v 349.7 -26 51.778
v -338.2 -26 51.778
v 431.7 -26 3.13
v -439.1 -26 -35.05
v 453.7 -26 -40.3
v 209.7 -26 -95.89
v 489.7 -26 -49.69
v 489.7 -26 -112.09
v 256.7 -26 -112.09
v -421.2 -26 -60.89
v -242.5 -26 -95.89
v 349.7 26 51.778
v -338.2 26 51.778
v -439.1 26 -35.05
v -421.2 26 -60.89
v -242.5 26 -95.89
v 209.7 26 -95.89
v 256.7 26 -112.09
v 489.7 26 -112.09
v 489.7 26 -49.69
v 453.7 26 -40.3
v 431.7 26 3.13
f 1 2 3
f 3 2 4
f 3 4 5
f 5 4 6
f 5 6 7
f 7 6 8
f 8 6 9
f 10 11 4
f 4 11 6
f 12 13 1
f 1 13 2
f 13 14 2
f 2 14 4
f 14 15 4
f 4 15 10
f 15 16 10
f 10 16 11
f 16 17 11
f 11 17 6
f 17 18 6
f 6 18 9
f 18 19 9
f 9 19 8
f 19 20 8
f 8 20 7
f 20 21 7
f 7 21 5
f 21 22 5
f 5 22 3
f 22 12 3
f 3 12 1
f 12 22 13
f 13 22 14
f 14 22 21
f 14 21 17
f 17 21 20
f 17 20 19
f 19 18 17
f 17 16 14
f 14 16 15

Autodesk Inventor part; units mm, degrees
ref_plane "YZ Plane" through (0, 0, 0) normal (1, 0, 0) x (0, 1, 0)
ref_plane "XY Plane" through (0, 0, 0) normal (0, 0, 1) x (1, 0, 0)
sketch "Sketch1" plane through (0, 0, 0) normal (0, 1, 0) x (-1, 0, 0)
  line L0 (0, -144.8636) -> (0, 84.5516) construction
  line L1 (624.86, 0) -> (-675.46, 0) construction
  line L2 (338.2, 51.778) -> (439.1, -35.05)
  line L3 (439.1, -35.05) -> (421.2, -60.89)
  line L4 (421.2, -60.89) -> (242.5, -95.89)
  line L5 (242.5, -95.89) -> (-209.7, -95.89)
  line L6 (-209.7, -95.89) -> (-256.7, -112.09)
  line L7 (-256.7, -112.09) -> (-489.7, -112.09)
  line L8 (-489.7, -112.09) -> (-489.7, -49.69)
  line L9 (-489.7, -49.69) -> (-453.7, -40.3)
  line L10 (-453.7, -40.3) -> (-431.7, 3.13)
  line L11 (-431.7, 3.13) -> (-349.7, 51.778)
  line L12 (-349.7, 51.778) -> (338.2, 51.778)
  point P0 (0, 0)
  dimension "d0" = 51.778
  dimension "d1" = 35.05
  dimension "d2" = 60.89
  dimension "d3" = 95.89
  dimension "d4" = 95.89
  dimension "d5" = 112.09
  dimension "d6" = 112.09
  dimension "d8" = 40.3
  dimension "d9" = 49.69
  dimension "d10" = 3.13
  dimension "d11" = 51.778
  dimension "d12" = 338.2
  dimension "d13" = 439.1
  dimension "d14" = 421.2
  dimension "d15" = 242.5
  dimension "d16" = 489.7
  dimension "d17" = 256.7
  dimension "d18" = 209.7
  dimension "d19" = 489.7
  dimension "d20" = 453.7
  dimension "d21" = 431.7
  dimension "d22" = 349.7
extrude "Extrusion1" add sketch "Sketch1" along normal mid plane 52
properties part number "Friend_track_collision"
